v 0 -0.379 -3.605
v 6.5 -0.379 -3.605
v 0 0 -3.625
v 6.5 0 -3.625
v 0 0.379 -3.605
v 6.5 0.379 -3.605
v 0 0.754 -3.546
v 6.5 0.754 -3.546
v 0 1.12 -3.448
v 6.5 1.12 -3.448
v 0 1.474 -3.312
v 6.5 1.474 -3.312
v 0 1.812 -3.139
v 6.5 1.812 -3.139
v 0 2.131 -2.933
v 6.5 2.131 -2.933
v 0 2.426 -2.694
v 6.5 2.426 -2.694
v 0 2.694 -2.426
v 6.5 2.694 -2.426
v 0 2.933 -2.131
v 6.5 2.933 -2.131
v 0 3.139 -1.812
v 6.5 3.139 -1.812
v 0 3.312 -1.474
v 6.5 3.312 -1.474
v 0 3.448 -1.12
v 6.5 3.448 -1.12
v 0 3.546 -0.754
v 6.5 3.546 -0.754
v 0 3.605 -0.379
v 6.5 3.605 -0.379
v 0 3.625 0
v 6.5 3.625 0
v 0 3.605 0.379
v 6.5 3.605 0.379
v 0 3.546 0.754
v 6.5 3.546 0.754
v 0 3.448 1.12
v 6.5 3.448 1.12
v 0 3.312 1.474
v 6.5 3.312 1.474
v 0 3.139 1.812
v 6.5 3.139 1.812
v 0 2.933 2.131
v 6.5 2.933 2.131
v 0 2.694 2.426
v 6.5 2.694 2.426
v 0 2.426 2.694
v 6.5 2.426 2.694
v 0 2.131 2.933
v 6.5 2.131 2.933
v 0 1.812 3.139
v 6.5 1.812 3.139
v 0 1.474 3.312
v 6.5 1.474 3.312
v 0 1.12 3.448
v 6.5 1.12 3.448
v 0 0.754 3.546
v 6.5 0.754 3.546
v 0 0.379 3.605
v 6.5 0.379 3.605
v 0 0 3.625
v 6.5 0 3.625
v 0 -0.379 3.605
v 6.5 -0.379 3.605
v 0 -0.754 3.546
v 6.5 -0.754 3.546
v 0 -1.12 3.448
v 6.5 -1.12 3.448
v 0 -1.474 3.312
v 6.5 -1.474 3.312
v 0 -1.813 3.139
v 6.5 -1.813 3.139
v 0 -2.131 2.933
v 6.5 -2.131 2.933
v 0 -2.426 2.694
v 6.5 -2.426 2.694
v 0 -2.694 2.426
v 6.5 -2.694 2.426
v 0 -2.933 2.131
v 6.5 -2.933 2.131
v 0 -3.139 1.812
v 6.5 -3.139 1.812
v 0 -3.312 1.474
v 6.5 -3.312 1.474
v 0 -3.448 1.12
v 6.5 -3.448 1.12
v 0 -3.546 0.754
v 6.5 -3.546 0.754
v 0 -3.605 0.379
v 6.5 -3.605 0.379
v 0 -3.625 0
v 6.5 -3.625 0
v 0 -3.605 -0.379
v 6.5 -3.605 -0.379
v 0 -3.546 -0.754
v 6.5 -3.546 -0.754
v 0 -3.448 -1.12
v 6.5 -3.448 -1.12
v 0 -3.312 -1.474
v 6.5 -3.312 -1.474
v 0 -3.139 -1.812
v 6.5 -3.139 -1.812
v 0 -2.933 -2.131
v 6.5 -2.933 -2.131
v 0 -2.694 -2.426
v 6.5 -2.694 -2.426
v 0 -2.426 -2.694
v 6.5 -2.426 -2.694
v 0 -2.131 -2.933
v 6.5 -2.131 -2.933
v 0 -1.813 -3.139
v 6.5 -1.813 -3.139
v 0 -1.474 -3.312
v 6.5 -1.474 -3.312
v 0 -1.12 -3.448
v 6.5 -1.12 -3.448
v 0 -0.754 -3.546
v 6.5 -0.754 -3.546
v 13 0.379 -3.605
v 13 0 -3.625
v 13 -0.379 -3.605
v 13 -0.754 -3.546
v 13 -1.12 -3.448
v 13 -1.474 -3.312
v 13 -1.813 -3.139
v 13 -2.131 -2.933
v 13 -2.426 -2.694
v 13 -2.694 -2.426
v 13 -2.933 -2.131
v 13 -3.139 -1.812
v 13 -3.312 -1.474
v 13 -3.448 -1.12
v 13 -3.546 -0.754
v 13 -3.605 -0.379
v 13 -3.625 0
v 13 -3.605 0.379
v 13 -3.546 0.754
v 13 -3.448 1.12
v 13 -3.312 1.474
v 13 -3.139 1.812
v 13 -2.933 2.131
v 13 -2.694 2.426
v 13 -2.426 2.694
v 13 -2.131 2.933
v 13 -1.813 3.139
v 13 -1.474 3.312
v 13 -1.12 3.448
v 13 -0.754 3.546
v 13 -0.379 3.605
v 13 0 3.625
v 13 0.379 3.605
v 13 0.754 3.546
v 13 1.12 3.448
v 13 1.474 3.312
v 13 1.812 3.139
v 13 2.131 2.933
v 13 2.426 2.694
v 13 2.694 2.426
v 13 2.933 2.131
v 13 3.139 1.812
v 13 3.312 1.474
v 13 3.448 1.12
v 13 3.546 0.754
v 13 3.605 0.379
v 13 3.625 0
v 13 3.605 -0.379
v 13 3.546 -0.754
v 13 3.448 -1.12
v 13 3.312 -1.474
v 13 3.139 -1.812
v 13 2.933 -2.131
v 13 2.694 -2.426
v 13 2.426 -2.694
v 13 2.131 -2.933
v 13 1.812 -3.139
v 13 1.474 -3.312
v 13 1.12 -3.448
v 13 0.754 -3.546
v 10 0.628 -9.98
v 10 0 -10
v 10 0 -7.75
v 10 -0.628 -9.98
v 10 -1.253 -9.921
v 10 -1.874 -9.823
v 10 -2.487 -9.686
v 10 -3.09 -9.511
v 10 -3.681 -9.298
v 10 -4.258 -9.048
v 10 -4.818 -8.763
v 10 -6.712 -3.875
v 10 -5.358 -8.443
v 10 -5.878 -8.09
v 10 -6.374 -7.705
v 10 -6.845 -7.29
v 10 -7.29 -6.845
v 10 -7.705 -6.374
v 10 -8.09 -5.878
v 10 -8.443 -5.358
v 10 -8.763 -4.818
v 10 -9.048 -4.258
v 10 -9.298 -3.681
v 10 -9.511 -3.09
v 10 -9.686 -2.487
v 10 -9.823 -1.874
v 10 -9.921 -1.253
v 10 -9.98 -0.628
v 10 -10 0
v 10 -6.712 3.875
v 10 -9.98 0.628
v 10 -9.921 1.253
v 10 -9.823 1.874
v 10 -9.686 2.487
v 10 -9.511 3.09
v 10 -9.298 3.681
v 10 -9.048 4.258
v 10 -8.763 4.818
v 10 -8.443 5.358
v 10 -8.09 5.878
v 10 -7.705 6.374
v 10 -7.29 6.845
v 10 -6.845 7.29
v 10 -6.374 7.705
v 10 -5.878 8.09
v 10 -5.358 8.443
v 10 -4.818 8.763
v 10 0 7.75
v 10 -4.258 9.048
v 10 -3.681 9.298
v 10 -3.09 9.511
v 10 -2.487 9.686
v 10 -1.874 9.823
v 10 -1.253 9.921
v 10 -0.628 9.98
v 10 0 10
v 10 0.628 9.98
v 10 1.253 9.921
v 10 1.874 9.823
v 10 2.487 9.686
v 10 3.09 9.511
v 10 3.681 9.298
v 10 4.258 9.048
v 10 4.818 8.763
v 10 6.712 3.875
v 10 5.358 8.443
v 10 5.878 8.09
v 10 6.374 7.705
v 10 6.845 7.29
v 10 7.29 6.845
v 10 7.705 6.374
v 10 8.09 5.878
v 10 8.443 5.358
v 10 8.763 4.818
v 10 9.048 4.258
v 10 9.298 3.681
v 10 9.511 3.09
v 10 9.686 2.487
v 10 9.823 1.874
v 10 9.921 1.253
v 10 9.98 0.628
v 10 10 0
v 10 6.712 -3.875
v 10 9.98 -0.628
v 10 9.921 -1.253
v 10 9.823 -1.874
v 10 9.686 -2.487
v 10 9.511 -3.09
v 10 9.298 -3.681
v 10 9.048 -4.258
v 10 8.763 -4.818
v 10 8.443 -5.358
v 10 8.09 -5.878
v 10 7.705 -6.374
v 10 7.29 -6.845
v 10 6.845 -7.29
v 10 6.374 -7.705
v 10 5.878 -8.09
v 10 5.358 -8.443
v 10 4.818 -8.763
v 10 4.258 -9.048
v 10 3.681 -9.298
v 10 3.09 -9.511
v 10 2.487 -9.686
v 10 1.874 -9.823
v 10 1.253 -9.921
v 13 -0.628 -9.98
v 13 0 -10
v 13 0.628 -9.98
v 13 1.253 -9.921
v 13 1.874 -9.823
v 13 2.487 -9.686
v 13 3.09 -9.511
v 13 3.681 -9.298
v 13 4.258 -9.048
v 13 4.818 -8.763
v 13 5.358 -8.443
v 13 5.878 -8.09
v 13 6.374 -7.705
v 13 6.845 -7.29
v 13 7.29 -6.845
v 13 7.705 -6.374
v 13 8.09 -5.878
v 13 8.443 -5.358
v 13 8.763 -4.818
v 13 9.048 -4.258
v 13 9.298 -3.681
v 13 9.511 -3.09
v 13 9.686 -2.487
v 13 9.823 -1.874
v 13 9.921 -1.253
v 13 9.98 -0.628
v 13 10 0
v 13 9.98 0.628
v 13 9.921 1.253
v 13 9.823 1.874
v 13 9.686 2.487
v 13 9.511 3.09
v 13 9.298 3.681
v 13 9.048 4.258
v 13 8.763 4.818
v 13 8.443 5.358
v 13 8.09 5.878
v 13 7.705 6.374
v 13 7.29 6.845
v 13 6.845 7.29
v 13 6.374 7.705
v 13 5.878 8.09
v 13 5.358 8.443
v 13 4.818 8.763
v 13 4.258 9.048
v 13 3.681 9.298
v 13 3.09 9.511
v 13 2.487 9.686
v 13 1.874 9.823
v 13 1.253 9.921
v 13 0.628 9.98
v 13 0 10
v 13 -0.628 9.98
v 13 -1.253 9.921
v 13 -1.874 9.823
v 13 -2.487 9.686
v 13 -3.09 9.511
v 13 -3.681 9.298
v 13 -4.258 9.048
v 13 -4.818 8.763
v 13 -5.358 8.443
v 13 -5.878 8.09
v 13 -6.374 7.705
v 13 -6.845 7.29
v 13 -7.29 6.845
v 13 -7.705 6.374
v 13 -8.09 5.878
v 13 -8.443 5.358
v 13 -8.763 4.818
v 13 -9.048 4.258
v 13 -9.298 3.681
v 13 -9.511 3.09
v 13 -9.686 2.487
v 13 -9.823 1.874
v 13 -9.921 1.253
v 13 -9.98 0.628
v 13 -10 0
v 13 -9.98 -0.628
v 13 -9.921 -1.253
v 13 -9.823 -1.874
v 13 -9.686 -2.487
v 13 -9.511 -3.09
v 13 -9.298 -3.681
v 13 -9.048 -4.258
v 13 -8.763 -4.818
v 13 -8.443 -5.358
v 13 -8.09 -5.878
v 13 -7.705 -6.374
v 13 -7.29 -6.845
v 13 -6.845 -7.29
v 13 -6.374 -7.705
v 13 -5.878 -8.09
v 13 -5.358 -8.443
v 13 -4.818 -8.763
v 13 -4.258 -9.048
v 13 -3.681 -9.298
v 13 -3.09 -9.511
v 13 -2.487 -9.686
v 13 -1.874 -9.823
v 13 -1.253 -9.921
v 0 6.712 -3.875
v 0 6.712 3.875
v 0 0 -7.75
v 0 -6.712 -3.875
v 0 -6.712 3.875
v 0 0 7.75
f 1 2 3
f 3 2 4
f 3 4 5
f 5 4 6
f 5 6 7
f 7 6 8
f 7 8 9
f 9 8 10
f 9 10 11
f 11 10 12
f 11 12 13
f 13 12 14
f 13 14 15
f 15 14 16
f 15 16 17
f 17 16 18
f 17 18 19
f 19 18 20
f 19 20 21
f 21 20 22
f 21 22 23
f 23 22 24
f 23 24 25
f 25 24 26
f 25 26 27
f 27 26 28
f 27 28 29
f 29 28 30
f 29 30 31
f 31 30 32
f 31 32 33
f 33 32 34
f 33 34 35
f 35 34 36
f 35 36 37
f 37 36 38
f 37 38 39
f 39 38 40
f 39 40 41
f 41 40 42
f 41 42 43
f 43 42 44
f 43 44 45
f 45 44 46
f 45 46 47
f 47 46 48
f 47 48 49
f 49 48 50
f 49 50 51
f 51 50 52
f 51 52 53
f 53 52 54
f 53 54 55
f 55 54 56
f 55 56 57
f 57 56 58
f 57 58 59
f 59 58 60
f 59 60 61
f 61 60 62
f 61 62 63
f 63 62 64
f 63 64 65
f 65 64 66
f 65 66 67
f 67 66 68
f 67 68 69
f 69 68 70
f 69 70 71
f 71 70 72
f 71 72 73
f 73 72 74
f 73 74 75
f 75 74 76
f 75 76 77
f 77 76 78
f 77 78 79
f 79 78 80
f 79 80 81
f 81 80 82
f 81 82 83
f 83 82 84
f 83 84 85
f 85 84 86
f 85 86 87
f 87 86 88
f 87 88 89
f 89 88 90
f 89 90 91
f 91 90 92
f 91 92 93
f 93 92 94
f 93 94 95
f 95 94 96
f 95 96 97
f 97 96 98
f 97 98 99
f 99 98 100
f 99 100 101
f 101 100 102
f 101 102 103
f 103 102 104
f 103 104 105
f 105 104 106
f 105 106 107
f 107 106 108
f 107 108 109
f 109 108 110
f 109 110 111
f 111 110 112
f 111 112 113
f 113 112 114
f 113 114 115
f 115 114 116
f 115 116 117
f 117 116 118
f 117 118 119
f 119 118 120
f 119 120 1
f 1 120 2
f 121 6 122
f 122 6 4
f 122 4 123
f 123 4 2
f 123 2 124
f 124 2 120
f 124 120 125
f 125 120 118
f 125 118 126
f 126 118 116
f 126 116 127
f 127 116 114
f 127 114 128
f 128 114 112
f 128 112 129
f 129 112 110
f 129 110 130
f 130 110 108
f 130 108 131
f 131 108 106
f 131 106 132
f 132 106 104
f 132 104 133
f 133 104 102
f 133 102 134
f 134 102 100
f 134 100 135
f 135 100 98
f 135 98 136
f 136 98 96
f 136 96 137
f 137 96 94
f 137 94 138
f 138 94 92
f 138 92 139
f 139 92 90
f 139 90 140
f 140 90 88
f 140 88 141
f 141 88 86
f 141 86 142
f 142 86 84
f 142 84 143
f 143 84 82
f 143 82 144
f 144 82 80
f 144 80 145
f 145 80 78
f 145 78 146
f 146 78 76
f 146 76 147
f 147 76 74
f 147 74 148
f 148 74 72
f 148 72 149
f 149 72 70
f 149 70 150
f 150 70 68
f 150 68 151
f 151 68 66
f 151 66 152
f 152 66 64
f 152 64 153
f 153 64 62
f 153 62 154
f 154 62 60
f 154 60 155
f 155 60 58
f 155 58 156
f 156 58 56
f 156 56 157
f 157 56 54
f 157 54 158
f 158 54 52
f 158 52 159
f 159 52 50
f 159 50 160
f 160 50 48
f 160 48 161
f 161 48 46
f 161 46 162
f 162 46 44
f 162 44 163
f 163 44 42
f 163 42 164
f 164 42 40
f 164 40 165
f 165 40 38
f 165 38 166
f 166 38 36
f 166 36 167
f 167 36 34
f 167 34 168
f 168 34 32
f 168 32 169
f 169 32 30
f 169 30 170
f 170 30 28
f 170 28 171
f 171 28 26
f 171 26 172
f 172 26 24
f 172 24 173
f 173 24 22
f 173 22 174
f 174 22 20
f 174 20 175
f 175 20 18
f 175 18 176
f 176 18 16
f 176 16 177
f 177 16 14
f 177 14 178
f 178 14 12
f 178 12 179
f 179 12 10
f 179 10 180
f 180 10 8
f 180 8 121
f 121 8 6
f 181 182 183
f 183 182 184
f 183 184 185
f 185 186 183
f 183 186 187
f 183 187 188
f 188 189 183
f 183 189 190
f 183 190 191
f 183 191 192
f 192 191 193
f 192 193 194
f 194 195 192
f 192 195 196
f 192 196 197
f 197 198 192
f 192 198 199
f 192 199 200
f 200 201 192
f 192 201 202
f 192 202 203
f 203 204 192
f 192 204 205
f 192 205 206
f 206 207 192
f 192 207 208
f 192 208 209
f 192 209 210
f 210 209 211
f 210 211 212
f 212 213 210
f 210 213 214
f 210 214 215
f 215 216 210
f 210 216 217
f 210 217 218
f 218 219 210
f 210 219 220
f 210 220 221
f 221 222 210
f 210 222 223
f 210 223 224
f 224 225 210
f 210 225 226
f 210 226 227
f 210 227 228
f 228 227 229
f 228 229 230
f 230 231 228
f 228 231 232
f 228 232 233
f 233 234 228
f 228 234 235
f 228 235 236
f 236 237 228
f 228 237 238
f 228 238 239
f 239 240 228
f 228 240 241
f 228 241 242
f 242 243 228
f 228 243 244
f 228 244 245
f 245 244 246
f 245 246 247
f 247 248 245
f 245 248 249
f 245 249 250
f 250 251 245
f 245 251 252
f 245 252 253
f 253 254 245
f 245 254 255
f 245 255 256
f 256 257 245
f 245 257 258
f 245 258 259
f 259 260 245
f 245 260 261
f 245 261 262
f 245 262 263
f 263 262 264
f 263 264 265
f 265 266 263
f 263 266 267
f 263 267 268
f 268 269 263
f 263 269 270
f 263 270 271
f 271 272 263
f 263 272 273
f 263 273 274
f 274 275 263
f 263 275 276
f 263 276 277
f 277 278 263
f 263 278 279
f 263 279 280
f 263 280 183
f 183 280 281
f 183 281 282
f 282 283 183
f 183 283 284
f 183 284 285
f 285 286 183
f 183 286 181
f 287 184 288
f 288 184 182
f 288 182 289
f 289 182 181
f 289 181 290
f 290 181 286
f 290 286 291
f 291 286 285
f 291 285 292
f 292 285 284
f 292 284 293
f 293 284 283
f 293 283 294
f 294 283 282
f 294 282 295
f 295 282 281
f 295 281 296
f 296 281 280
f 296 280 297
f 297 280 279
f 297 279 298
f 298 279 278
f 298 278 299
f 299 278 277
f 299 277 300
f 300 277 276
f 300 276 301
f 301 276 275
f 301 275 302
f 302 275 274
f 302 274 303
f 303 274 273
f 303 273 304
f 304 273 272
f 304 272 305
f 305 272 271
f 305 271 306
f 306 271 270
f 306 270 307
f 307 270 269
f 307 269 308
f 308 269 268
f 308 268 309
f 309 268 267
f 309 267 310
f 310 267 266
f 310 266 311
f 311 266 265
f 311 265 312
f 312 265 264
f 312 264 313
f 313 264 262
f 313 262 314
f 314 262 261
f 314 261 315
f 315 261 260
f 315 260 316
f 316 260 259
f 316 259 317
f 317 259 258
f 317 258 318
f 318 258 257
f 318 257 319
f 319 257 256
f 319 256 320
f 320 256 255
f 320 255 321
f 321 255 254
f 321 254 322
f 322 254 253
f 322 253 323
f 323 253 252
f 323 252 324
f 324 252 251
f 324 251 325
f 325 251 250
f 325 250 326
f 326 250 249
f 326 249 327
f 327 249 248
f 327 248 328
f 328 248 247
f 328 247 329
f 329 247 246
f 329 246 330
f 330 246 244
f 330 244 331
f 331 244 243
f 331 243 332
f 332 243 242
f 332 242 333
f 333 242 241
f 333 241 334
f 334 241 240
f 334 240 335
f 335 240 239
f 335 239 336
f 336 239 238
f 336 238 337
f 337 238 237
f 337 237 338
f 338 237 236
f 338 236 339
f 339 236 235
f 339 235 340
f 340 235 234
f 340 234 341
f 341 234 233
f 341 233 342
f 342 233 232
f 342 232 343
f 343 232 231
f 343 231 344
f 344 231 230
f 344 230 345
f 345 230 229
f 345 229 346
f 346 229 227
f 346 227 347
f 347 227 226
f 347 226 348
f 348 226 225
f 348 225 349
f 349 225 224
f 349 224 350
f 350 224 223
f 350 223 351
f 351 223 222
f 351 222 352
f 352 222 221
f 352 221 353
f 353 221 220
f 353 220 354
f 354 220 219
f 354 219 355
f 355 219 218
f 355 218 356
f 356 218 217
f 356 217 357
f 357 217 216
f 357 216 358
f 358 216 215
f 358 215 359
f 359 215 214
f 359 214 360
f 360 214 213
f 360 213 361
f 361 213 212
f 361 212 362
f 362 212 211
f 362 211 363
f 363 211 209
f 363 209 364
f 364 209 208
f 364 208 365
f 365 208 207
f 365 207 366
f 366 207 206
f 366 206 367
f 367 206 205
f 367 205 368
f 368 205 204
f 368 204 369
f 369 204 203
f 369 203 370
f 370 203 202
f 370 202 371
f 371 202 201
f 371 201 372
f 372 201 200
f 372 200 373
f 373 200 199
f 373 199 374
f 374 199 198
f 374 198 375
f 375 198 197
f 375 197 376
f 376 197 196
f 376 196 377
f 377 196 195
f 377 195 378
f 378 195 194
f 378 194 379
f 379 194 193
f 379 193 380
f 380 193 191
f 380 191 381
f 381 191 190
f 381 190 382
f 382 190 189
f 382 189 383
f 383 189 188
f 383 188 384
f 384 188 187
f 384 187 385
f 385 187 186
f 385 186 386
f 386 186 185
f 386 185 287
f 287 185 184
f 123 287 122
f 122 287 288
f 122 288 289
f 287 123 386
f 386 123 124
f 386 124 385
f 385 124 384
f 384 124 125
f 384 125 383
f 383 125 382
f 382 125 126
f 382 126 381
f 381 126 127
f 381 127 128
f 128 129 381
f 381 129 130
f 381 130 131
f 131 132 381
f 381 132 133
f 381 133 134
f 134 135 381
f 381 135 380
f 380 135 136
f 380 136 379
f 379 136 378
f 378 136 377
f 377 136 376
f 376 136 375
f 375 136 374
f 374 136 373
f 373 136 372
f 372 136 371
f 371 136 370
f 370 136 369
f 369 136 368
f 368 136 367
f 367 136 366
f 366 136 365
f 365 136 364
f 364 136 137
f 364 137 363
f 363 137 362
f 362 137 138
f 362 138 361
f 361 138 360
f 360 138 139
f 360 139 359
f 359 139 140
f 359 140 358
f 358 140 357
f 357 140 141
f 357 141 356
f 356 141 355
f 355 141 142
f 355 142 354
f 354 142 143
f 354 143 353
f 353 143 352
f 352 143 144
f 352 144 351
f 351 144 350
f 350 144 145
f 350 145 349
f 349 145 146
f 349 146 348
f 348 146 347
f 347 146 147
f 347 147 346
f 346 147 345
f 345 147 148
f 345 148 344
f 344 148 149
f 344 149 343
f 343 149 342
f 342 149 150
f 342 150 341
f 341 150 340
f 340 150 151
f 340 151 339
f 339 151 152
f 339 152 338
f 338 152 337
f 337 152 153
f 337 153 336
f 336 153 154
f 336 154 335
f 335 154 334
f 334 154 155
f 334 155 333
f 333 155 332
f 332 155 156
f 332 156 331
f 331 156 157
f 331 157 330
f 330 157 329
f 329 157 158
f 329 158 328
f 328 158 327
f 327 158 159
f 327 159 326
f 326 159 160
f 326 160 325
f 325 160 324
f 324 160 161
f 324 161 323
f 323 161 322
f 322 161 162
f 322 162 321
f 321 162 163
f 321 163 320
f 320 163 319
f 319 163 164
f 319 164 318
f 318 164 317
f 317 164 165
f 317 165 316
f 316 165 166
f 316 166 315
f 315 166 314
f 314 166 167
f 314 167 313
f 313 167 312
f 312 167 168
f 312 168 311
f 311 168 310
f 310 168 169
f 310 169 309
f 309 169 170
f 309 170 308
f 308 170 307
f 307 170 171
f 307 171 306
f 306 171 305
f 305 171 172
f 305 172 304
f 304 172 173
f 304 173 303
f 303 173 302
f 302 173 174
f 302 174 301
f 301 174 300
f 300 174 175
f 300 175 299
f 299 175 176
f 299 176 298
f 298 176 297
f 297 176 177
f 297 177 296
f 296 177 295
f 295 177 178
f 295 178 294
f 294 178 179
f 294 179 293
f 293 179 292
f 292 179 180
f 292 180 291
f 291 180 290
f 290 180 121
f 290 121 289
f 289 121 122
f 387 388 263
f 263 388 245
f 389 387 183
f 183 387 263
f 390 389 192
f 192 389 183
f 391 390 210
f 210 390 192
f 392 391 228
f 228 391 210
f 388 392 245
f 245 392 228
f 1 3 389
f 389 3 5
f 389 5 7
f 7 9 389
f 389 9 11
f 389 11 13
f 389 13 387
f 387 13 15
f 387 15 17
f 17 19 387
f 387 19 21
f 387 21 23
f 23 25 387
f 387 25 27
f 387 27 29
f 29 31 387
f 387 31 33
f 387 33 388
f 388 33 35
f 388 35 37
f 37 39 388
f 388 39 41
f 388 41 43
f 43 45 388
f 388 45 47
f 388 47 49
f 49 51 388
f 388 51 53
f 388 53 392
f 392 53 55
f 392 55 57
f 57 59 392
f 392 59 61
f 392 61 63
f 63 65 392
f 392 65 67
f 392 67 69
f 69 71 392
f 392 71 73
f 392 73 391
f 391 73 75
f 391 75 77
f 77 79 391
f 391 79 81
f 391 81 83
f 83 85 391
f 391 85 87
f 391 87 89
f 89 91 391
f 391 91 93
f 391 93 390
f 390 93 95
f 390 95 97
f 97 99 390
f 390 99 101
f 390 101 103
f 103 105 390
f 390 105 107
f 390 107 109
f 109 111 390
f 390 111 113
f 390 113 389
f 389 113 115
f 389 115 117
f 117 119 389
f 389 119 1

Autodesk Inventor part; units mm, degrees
ref_plane "YZ Plane" through (0, 0, 0) normal (1, 0, 0) x (0, 1, 0)
ref_plane "XZ Plane" through (0, 0, 0) normal (0, 1, 0) x (-1, 0, 0)
ref_plane "XY Plane" through (0, 0, 0) normal (0, 0, 1) x (1, 0, 0)
sketch "Sketch1" plane through (0, 0, 0) normal (1, 0, 0) x (0, 1, 0)
  line L0 (0, 0) -> (0, 7.75) construction
  line L1 (0, 7.75) -> (6.7117, 3.875)
  line L2 (6.7117, 3.875) -> (6.7117, -3.875)
  line L3 (6.7117, -3.875) -> (0, -7.75)
  line L4 (0, -7.75) -> (-6.7117, -3.875)
  line L5 (-6.7117, -3.875) -> (-6.7117, 3.875)
  line L6 (-6.7117, 3.875) -> (0, 7.75)
  dimension "d0" = 7.75
extrude "Extrusion1" add sketch "Sketch1" along normal blind 10
sketch "Sketch2" plane through (10, 0, 0) normal (1, 0, 0) x (0, 0, -1)
  circle A0 centre (0, 0) radius 10
  dimension "d3" = 20
extrude "Extrusion2" add sketch "Sketch2" along normal blind 3
sketch "Sketch3" plane through (13, 0, 0) normal (1, 0, 0) x (0, 0, -1)
  circle A0 centre (0, 0) radius 3.625
  dimension "d6" = 7.25
extrude "Extrusion3" cut sketch "Sketch3" against normal blind 15
properties part number "smallHub 9-25"
